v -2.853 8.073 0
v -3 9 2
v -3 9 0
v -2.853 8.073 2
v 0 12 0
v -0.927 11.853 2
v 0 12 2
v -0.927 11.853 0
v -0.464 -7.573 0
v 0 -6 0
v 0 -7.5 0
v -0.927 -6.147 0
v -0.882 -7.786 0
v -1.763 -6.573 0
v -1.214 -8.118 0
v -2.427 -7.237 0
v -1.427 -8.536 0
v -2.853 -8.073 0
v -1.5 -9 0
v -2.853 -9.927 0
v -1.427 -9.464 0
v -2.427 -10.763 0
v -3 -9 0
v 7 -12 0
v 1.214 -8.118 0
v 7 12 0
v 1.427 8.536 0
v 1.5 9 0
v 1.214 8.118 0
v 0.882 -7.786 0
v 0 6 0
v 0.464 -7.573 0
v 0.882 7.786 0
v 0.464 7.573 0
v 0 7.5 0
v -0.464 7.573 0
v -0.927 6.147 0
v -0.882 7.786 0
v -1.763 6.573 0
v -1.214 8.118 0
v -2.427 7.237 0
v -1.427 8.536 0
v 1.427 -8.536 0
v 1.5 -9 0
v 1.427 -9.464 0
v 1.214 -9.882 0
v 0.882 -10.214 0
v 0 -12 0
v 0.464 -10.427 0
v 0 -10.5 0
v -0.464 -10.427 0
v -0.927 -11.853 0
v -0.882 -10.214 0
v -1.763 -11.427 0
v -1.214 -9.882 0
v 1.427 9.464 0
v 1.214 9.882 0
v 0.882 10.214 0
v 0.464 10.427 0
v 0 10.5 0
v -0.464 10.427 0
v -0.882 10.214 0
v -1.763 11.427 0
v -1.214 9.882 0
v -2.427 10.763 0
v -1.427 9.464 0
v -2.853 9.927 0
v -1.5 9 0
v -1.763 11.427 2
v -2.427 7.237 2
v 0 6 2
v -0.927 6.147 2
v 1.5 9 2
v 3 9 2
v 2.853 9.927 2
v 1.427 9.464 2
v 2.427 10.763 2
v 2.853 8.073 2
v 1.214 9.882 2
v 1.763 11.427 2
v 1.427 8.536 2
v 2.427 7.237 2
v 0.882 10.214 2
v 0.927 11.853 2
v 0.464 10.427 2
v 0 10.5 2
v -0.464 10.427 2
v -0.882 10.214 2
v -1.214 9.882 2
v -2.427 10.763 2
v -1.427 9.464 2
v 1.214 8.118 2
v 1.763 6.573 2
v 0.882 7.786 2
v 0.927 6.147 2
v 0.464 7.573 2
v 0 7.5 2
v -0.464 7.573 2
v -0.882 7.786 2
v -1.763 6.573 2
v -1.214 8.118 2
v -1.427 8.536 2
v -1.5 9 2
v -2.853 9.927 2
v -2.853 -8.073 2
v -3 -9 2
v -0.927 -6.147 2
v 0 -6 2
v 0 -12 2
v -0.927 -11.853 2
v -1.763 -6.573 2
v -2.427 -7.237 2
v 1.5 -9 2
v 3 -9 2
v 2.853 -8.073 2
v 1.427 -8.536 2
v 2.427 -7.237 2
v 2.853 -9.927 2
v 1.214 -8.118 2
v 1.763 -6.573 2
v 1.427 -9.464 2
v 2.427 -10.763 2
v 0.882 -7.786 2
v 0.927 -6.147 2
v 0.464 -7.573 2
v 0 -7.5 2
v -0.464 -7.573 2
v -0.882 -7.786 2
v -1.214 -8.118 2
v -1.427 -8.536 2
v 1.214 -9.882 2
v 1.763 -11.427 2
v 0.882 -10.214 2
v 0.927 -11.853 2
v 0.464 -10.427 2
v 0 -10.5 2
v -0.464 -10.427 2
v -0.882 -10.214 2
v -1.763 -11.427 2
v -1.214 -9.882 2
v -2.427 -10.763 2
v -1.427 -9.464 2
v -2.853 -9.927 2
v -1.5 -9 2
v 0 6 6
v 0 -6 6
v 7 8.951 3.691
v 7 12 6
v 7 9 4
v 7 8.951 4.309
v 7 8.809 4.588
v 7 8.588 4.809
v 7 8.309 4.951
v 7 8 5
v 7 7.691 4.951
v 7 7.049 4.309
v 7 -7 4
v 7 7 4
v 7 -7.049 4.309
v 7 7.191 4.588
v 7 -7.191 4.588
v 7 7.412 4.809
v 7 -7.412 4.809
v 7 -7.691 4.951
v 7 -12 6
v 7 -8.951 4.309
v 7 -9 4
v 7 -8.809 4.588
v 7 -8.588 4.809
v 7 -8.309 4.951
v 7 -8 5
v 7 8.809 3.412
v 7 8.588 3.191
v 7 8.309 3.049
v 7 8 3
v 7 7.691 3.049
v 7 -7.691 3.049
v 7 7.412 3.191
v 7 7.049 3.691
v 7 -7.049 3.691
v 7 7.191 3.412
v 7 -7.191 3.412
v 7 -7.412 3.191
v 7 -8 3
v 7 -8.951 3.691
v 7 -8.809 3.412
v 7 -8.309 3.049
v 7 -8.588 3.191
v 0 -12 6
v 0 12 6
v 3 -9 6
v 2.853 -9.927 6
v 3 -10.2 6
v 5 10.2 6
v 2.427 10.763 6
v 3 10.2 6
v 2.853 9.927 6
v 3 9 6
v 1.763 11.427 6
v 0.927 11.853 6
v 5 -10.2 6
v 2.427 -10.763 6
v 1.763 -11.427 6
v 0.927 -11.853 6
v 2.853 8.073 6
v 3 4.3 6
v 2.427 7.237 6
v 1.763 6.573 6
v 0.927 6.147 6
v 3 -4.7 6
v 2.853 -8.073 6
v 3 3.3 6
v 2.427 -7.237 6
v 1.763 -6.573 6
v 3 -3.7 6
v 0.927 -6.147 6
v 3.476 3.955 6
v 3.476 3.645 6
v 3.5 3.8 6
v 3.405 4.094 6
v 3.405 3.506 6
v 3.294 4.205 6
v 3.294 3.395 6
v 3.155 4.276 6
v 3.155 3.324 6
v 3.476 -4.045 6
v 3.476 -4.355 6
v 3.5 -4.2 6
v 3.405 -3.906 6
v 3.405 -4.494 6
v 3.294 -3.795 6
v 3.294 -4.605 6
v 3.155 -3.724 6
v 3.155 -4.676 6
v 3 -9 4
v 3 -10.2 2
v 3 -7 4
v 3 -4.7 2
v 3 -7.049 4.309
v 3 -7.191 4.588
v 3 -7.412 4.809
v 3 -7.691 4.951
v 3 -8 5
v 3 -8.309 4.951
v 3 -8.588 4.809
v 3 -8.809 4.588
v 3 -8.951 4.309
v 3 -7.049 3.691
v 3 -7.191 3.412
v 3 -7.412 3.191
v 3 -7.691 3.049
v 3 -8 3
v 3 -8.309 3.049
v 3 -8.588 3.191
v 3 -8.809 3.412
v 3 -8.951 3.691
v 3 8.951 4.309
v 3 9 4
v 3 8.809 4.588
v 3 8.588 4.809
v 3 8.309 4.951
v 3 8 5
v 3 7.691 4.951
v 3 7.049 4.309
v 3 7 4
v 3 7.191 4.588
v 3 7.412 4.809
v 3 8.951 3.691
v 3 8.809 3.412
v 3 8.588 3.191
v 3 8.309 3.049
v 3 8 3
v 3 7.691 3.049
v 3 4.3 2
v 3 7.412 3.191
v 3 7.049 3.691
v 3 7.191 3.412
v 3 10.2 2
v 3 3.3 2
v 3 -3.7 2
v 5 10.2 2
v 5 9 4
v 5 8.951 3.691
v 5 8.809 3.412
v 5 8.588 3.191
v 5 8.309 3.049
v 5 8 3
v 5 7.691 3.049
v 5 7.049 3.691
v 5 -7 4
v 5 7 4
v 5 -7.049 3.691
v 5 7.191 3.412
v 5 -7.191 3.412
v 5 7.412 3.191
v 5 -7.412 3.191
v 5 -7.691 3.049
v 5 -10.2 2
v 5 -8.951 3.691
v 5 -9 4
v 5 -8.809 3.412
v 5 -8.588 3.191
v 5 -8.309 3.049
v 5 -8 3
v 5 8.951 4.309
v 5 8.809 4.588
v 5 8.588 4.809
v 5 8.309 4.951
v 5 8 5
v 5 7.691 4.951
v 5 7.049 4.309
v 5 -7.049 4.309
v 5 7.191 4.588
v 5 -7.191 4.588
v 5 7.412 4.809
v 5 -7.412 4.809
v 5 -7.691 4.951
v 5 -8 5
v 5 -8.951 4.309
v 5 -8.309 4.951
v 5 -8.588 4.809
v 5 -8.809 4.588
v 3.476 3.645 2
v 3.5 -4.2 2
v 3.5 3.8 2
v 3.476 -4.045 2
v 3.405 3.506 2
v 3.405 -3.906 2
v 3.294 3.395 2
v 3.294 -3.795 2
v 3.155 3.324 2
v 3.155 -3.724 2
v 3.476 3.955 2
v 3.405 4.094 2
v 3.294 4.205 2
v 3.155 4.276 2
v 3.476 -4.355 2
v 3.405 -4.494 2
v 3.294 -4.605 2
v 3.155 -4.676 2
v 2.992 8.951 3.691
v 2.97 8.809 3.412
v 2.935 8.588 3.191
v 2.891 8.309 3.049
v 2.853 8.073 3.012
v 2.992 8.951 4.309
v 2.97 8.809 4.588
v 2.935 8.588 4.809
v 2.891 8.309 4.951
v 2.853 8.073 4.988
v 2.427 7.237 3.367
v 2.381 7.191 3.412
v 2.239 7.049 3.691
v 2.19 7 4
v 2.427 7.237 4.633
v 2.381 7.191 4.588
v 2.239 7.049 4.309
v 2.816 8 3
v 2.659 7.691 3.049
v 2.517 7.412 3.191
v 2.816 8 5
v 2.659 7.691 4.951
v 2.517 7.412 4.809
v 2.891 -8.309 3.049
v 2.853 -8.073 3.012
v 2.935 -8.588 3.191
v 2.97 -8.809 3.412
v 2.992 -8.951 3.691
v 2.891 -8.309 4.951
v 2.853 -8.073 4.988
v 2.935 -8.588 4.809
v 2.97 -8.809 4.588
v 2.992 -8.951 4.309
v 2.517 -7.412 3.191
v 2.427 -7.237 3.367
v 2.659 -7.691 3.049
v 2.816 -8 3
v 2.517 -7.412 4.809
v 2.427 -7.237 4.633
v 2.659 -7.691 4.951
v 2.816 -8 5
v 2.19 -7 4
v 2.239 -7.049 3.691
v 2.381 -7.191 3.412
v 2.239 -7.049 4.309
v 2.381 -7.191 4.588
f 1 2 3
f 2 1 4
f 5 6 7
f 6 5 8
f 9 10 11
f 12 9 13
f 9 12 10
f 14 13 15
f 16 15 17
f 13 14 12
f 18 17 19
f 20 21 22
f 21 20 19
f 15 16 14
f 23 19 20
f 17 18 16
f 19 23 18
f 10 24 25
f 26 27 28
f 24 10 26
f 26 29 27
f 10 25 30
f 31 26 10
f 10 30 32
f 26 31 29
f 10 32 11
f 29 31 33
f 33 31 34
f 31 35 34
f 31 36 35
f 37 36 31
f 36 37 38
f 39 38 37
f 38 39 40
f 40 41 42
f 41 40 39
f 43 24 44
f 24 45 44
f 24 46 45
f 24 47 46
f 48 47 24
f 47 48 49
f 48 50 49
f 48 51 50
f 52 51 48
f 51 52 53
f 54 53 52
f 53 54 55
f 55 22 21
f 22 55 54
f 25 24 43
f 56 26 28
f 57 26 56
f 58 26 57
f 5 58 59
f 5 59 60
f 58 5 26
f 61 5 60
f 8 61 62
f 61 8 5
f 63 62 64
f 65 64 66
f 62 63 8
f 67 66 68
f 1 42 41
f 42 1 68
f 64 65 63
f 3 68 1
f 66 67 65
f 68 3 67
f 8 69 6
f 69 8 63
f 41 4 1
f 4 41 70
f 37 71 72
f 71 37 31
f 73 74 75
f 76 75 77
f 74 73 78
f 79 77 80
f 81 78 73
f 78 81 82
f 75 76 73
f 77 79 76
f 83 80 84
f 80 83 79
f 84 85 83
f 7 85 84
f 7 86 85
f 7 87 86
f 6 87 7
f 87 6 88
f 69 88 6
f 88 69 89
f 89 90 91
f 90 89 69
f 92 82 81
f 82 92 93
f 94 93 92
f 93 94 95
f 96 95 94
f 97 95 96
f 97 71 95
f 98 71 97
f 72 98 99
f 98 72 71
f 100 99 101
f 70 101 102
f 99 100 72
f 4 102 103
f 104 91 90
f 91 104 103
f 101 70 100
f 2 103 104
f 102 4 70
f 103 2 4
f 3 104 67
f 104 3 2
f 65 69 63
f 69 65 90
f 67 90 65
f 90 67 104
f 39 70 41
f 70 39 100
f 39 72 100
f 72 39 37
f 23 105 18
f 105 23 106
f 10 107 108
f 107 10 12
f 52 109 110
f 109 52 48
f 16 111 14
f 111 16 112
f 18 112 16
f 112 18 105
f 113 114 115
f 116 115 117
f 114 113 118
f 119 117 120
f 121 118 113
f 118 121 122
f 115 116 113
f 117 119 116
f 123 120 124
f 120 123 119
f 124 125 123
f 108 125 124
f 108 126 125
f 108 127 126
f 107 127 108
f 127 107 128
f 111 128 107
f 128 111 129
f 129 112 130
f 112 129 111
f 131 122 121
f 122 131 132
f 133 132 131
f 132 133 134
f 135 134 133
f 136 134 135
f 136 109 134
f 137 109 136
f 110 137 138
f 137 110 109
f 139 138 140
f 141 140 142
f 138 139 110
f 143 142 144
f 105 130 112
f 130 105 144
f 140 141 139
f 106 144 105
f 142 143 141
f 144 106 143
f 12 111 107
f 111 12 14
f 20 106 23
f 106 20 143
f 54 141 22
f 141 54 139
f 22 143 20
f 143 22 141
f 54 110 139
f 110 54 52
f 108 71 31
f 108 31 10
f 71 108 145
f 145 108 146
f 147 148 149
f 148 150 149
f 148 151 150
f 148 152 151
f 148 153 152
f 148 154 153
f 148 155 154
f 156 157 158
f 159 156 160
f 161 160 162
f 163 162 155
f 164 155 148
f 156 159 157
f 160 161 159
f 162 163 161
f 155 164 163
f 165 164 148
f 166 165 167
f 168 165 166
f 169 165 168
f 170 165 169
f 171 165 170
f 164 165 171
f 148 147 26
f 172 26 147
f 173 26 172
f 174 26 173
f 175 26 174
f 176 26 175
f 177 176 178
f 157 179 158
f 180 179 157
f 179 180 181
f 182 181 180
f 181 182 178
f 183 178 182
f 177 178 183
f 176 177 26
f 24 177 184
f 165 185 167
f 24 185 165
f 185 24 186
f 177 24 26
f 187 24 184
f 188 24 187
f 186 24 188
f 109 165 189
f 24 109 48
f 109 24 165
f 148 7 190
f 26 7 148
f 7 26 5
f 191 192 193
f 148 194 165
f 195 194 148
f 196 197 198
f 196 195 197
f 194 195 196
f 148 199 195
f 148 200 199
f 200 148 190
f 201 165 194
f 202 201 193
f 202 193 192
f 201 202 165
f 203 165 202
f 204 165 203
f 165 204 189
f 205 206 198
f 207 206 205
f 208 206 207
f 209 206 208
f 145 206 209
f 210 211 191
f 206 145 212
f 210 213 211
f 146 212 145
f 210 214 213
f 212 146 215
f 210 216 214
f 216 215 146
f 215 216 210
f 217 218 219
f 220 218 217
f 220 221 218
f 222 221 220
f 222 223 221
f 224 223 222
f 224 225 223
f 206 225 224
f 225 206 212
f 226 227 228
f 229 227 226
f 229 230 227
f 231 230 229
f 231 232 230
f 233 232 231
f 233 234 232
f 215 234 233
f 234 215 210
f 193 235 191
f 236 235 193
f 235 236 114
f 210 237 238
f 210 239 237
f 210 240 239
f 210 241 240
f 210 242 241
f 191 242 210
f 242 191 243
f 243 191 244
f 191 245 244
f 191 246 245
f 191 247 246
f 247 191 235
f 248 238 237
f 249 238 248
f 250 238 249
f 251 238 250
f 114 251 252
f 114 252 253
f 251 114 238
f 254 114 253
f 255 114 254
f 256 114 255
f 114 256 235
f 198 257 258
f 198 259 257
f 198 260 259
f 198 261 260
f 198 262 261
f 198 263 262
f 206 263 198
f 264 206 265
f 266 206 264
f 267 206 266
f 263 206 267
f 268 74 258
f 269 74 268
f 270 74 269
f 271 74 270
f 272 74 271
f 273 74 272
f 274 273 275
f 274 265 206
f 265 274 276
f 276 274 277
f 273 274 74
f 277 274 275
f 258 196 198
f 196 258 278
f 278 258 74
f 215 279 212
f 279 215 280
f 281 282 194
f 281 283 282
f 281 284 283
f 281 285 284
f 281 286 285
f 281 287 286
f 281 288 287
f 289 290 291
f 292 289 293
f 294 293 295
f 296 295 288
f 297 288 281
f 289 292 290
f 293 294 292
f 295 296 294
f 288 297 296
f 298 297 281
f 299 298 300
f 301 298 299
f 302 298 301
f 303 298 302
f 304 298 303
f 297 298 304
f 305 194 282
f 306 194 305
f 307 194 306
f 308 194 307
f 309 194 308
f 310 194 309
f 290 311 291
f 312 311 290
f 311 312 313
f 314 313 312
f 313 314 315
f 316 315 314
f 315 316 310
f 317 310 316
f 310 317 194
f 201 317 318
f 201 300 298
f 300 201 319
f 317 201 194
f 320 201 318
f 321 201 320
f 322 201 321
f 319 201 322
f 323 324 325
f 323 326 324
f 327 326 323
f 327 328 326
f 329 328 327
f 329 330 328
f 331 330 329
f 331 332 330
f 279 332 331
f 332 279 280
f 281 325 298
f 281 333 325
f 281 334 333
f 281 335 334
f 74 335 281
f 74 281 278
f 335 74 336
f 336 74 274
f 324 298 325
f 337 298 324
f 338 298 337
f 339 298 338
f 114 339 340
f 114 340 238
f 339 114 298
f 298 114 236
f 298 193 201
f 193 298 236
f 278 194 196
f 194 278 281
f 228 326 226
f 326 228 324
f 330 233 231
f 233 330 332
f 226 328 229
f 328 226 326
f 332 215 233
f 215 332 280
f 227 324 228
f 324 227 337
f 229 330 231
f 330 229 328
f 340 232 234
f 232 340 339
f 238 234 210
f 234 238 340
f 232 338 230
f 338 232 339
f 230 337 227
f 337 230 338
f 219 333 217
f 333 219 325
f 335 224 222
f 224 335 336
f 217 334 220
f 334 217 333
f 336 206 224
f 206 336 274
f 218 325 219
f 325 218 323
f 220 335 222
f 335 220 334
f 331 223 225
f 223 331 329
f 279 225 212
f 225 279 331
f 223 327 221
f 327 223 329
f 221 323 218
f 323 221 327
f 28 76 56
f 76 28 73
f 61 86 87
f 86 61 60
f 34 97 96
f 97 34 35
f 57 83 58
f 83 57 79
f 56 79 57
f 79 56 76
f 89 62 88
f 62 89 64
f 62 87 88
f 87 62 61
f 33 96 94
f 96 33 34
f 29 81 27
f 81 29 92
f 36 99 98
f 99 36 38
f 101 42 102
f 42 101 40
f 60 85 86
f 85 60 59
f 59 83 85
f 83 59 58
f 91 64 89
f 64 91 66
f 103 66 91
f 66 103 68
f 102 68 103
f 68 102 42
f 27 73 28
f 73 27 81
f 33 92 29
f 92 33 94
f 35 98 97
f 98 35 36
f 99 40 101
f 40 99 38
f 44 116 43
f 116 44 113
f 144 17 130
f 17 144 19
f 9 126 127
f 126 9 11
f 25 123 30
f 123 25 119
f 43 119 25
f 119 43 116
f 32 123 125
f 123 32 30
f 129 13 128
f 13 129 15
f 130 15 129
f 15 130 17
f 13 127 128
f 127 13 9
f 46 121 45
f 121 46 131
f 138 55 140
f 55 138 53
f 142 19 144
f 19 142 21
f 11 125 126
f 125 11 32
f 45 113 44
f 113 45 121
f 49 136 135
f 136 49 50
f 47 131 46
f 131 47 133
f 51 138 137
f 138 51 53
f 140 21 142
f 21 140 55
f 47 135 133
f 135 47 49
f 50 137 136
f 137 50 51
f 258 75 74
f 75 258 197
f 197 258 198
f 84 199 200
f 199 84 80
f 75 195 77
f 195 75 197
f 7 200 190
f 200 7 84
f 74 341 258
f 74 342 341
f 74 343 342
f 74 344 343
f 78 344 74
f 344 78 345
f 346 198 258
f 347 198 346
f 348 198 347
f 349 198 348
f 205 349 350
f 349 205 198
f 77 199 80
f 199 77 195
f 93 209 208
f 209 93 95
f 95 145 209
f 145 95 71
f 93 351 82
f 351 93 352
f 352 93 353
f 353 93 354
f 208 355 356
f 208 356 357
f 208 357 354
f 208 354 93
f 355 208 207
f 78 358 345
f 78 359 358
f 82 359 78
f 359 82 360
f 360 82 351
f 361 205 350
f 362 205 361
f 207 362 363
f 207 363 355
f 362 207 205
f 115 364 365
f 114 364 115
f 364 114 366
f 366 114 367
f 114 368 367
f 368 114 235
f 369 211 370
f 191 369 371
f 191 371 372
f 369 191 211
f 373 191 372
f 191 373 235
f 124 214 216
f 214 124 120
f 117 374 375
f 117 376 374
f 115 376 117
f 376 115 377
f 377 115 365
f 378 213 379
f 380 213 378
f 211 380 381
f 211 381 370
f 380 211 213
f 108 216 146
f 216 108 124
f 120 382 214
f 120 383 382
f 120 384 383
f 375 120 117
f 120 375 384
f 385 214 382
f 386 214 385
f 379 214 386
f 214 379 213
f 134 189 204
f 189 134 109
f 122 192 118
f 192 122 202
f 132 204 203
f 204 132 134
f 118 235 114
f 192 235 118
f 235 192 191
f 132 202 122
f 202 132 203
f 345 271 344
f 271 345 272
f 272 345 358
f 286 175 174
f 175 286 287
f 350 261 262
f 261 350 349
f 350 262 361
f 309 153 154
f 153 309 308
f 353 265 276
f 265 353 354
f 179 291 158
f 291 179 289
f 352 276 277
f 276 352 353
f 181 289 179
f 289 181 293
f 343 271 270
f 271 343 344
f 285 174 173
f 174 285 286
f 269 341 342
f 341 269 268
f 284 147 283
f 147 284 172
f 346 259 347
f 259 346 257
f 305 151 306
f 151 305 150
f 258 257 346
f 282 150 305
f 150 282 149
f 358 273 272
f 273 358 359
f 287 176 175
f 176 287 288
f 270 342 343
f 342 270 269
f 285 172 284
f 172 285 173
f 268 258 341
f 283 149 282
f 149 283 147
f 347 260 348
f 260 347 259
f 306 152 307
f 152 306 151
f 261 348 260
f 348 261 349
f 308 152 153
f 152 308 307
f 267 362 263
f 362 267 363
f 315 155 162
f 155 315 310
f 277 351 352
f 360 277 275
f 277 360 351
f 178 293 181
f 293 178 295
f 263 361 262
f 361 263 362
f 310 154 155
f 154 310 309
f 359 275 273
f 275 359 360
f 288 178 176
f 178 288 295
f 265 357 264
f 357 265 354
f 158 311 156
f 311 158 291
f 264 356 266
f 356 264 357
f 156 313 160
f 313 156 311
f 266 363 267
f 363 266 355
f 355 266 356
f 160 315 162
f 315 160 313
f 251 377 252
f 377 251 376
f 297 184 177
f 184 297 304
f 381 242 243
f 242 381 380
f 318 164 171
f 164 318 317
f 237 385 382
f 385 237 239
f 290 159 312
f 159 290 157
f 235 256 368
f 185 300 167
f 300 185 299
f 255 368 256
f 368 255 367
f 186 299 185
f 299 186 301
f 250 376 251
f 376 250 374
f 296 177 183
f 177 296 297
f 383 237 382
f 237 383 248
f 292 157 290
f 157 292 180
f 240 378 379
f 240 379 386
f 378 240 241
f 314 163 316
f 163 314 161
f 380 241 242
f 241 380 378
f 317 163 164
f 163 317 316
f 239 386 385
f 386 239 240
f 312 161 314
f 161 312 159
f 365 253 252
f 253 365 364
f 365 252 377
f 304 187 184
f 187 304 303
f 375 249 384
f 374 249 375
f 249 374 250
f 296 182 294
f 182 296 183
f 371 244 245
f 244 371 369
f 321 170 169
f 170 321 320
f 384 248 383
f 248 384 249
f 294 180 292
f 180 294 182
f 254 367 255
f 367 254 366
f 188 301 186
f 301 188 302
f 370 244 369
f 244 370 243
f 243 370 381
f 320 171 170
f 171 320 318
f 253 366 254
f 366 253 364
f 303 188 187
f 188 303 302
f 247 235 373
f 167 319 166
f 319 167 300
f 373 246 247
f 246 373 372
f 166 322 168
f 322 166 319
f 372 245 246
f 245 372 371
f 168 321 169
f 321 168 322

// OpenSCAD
// MCP connector bracket
//
// Attach a short piece of perfboard to the back of the
// MCP.

difference(){
  union(){
    translate([0,18/2,0])
    cylinder(d=6,h=2,$fn=20);
    translate([0,-18/2,0])
    cylinder(d=6,h=2,$fn=20);
    translate([0,(-18/2)-3,0])
    cube([7,18+6,2]);
    translate([0,(-18/2)-3,2])
    cube([7,18+6,4]);
    
  }
    translate([0,18/2,-1])
    cylinder(d=3,h=10,$fn=20);
    translate([0,-18/2,-1])
    cylinder(d=3,h=10,$fn=20);

    translate([0,18/2,2])
    cylinder(d=6,h=10,$fn=20);
    translate([0,-18/2,2])
    cylinder(d=6,h=10,$fn=20);
  
    // Slot for edge of perfboard
    translate([3,(-20/2)-0.2,2]){
      difference(){
        cube([2,20+0.4,10]);
        // Ribs to grip perfboard
        translate([0,6,0])
        cylinder(d=1,h=10,$fn=20);
        translate([0,14,0])
        cylinder(d=1,h=10,$fn=20);
      }
    }
  
    // Capture pins
    translate([0,16/2,4])
    rotate([0,90,0])
    cylinder(d=2,h=10,$fn=20);
    translate([0,-16/2,4])
    rotate([0,90,0])
    cylinder(d=2,h=10,$fn=20);
  
}
//cube
